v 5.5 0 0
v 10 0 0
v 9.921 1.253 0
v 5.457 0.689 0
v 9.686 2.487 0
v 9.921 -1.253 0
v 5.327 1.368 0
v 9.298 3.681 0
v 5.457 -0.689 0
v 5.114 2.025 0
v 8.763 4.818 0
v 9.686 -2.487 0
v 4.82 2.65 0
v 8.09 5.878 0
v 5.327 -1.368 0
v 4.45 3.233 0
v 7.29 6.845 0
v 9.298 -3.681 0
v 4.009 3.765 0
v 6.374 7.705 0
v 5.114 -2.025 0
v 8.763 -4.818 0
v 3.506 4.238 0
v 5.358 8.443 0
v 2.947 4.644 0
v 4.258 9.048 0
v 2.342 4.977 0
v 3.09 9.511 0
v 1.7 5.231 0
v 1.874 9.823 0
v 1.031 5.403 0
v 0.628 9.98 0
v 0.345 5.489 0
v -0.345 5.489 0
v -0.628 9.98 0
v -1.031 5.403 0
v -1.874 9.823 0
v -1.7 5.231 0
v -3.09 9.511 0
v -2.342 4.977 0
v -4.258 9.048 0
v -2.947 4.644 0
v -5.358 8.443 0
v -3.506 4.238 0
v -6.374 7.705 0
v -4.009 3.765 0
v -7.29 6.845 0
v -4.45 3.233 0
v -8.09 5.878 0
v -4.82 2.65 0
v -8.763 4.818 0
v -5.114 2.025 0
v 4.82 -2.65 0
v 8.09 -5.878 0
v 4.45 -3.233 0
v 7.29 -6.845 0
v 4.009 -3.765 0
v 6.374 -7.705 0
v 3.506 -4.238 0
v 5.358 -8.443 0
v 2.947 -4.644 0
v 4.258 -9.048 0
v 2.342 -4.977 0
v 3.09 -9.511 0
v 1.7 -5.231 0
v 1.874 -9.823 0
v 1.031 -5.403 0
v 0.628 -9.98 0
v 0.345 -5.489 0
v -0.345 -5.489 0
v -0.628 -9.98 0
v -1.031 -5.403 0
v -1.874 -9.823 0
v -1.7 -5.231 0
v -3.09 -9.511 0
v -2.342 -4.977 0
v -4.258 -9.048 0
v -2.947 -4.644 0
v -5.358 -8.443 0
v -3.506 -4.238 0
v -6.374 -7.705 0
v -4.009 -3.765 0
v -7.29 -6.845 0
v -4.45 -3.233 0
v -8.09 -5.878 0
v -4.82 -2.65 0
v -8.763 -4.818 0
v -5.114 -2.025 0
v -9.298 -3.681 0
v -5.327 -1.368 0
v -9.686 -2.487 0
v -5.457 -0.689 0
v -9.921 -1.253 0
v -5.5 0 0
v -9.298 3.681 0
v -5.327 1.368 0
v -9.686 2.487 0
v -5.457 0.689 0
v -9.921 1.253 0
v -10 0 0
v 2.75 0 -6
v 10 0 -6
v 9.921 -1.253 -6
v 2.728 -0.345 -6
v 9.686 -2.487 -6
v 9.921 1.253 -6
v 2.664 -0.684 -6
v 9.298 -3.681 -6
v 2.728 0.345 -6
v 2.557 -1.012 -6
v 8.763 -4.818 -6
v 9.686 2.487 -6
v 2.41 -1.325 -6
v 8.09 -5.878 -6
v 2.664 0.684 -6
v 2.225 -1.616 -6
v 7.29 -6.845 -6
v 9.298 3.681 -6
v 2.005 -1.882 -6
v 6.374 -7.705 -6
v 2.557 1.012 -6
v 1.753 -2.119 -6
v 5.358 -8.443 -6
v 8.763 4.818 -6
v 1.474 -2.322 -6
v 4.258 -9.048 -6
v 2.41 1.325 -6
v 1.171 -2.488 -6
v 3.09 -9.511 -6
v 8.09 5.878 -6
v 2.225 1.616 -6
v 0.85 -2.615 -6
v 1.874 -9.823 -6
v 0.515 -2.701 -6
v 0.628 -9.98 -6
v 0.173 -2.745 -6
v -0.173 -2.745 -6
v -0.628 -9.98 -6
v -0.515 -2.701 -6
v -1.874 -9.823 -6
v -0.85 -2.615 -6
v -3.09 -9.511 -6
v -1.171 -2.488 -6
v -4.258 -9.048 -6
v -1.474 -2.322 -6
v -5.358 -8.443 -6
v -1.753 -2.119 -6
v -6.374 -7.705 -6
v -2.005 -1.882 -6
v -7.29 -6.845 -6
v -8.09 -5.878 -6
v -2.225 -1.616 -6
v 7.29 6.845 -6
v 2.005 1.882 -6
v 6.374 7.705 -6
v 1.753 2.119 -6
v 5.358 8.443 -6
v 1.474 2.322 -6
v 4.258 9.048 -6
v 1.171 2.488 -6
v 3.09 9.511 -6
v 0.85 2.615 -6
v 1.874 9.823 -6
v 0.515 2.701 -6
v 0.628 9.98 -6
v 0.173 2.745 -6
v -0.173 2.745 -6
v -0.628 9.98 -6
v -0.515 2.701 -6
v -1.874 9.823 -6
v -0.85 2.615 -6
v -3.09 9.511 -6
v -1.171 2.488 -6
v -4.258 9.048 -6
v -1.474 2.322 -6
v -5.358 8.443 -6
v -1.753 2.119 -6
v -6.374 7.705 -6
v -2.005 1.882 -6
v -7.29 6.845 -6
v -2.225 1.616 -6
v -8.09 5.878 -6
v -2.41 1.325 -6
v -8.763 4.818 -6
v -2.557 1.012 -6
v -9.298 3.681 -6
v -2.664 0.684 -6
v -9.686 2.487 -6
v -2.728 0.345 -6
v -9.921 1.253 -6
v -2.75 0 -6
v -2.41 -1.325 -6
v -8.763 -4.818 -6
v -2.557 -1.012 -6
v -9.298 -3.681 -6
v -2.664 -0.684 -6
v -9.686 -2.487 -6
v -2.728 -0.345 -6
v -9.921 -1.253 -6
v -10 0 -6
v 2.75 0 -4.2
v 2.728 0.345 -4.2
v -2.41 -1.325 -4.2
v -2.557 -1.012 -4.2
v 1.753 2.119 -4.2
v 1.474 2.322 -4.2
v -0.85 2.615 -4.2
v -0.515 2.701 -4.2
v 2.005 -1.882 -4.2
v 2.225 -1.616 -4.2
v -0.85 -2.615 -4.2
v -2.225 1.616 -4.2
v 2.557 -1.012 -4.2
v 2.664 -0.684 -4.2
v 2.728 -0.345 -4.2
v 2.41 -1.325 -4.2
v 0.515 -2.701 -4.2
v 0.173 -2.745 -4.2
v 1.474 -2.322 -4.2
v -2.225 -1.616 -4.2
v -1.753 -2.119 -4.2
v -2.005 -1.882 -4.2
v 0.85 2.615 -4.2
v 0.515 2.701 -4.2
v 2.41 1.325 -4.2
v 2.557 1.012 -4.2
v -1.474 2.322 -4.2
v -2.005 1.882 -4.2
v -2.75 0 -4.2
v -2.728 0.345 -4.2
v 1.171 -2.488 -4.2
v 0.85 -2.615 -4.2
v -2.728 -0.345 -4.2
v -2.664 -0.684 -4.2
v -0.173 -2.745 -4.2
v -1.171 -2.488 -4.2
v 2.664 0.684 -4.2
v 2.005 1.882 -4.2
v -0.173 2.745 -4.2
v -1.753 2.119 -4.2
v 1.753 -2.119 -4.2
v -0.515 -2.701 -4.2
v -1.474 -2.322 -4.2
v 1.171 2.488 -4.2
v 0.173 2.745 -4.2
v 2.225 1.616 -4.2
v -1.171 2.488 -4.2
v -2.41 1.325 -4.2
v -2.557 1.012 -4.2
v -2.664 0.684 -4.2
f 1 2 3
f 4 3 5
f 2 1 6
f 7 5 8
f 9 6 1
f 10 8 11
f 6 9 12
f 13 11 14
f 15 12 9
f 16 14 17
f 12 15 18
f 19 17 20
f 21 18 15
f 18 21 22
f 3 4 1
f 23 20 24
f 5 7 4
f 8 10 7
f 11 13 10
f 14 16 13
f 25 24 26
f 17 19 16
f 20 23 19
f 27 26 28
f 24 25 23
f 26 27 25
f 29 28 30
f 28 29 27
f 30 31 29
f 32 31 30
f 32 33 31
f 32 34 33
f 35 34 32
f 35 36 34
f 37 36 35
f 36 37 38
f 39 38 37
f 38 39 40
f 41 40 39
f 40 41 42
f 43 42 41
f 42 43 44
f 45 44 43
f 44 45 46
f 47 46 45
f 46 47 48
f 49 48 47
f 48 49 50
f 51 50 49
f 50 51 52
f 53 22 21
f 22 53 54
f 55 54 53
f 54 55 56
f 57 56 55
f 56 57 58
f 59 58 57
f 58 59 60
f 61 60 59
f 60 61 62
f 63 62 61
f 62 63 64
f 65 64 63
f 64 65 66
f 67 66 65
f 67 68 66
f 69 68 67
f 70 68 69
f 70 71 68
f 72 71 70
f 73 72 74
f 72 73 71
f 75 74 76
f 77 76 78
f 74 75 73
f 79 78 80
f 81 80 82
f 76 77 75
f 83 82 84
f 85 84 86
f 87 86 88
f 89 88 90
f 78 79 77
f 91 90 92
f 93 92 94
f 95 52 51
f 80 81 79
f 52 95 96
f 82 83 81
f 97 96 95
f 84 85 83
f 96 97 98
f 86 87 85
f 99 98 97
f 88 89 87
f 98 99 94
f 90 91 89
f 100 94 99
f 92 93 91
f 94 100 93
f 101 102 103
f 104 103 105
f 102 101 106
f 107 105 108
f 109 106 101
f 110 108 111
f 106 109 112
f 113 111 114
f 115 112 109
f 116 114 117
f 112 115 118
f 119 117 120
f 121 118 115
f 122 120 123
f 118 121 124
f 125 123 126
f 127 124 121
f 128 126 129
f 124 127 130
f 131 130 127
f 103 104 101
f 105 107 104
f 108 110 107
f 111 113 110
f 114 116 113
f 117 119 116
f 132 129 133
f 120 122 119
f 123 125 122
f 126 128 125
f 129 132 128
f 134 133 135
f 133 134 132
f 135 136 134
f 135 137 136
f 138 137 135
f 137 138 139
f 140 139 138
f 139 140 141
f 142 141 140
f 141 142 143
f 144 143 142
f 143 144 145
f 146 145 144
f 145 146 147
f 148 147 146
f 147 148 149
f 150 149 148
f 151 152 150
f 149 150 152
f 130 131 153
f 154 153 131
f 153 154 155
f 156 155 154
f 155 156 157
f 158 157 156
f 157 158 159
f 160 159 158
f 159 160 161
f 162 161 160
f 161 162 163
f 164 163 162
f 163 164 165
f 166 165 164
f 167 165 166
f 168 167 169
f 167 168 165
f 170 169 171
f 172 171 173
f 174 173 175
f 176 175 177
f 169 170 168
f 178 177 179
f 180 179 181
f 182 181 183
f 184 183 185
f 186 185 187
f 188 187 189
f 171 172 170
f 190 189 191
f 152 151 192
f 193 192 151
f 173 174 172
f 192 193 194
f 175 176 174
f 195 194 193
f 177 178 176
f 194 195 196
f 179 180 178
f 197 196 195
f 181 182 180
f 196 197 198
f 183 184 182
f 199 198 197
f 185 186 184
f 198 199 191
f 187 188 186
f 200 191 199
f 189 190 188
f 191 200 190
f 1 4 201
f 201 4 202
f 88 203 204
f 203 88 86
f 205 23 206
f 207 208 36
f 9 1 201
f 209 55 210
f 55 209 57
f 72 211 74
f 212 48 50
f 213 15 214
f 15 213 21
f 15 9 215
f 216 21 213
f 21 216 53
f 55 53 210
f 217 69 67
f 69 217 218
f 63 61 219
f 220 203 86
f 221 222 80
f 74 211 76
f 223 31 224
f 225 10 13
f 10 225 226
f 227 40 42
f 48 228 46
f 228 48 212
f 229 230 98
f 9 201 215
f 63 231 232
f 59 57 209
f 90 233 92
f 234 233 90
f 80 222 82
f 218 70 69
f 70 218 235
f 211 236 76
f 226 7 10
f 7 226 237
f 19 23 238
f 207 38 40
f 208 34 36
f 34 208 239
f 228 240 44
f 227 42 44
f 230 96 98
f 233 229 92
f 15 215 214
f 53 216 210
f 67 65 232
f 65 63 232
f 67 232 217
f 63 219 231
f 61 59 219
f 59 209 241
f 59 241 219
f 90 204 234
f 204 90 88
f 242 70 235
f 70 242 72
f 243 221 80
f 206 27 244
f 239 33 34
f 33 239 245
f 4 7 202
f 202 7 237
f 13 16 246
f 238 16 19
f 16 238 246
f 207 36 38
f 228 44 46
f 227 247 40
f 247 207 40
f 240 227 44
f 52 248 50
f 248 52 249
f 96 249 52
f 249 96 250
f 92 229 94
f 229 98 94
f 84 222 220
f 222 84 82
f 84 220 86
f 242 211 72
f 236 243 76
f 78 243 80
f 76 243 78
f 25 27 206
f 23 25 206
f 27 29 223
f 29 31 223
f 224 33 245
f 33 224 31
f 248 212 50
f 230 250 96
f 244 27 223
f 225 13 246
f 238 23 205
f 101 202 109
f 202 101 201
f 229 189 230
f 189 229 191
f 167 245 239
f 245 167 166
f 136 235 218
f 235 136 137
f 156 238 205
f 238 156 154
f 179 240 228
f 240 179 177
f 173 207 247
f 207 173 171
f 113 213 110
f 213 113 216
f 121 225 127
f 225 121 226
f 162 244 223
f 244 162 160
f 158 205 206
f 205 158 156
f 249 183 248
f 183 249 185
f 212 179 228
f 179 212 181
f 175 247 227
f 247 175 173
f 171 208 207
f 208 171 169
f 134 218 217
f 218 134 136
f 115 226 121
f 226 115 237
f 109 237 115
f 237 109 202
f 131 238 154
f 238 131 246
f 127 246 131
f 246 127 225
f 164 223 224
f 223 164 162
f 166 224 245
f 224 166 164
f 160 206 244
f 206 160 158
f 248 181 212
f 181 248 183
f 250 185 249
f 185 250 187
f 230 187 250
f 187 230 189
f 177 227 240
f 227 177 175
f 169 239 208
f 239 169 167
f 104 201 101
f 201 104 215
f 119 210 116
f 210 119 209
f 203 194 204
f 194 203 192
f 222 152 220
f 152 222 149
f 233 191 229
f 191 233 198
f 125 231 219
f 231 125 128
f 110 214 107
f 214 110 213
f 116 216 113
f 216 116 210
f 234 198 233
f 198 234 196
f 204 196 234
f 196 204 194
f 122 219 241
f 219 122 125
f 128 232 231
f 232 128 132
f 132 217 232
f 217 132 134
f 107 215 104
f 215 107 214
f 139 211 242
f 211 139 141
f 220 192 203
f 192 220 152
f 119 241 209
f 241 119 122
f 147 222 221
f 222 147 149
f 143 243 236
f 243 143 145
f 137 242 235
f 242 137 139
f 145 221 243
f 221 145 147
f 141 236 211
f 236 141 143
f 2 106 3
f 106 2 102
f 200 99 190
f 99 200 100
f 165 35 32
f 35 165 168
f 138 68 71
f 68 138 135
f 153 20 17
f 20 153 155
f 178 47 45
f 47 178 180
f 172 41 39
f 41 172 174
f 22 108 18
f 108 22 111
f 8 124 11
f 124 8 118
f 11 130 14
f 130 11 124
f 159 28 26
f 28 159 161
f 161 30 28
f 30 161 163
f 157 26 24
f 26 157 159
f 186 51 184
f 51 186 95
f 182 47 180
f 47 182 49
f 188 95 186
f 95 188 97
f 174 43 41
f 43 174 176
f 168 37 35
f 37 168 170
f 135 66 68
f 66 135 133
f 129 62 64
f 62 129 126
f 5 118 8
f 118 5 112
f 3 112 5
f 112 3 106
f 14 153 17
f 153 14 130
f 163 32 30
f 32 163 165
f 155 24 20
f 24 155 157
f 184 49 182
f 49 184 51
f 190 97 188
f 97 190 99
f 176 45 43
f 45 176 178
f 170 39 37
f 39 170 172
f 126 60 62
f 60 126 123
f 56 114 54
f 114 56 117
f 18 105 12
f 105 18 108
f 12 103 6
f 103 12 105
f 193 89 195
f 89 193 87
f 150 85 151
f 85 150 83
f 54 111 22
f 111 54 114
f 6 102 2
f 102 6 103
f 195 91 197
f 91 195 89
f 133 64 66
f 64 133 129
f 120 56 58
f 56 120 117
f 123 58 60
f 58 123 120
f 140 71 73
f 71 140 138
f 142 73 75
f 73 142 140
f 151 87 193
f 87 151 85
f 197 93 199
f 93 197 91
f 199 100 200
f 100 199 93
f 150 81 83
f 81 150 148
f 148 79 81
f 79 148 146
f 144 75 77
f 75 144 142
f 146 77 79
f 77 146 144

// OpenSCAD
$fn = 50;


difference() {
	union() {
		translate(v = [0, 0, -6.0000000000]) {
			cylinder(h = 6, r = 10.0000000000);
		}
	}
	union() {
		translate(v = [0, 0, 0]) {
			rotate(a = [0, 0, 0]) {
				difference() {
					union() {
						#translate(v = [0, 0, -6.0000000000]) {
							cylinder(h = 6, r = 2.2500000000);
						}
						#translate(v = [0, 0, -4.2000000000]) {
							cylinder(h = 4.2000000000, r = 10.0000000000, r1 = 2.7500000000, r2 = 5.5000000000);
						}
						#translate(v = [0, 0, -6.0000000000]) {
							cylinder(h = 6, r = 2.7500000000);
						}
						#translate(v = [0, 0, -6.0000000000]) {
							cylinder(h = 6, r = 2.2500000000);
						}
					}
					union();
				}
			}
		}
	}
}
